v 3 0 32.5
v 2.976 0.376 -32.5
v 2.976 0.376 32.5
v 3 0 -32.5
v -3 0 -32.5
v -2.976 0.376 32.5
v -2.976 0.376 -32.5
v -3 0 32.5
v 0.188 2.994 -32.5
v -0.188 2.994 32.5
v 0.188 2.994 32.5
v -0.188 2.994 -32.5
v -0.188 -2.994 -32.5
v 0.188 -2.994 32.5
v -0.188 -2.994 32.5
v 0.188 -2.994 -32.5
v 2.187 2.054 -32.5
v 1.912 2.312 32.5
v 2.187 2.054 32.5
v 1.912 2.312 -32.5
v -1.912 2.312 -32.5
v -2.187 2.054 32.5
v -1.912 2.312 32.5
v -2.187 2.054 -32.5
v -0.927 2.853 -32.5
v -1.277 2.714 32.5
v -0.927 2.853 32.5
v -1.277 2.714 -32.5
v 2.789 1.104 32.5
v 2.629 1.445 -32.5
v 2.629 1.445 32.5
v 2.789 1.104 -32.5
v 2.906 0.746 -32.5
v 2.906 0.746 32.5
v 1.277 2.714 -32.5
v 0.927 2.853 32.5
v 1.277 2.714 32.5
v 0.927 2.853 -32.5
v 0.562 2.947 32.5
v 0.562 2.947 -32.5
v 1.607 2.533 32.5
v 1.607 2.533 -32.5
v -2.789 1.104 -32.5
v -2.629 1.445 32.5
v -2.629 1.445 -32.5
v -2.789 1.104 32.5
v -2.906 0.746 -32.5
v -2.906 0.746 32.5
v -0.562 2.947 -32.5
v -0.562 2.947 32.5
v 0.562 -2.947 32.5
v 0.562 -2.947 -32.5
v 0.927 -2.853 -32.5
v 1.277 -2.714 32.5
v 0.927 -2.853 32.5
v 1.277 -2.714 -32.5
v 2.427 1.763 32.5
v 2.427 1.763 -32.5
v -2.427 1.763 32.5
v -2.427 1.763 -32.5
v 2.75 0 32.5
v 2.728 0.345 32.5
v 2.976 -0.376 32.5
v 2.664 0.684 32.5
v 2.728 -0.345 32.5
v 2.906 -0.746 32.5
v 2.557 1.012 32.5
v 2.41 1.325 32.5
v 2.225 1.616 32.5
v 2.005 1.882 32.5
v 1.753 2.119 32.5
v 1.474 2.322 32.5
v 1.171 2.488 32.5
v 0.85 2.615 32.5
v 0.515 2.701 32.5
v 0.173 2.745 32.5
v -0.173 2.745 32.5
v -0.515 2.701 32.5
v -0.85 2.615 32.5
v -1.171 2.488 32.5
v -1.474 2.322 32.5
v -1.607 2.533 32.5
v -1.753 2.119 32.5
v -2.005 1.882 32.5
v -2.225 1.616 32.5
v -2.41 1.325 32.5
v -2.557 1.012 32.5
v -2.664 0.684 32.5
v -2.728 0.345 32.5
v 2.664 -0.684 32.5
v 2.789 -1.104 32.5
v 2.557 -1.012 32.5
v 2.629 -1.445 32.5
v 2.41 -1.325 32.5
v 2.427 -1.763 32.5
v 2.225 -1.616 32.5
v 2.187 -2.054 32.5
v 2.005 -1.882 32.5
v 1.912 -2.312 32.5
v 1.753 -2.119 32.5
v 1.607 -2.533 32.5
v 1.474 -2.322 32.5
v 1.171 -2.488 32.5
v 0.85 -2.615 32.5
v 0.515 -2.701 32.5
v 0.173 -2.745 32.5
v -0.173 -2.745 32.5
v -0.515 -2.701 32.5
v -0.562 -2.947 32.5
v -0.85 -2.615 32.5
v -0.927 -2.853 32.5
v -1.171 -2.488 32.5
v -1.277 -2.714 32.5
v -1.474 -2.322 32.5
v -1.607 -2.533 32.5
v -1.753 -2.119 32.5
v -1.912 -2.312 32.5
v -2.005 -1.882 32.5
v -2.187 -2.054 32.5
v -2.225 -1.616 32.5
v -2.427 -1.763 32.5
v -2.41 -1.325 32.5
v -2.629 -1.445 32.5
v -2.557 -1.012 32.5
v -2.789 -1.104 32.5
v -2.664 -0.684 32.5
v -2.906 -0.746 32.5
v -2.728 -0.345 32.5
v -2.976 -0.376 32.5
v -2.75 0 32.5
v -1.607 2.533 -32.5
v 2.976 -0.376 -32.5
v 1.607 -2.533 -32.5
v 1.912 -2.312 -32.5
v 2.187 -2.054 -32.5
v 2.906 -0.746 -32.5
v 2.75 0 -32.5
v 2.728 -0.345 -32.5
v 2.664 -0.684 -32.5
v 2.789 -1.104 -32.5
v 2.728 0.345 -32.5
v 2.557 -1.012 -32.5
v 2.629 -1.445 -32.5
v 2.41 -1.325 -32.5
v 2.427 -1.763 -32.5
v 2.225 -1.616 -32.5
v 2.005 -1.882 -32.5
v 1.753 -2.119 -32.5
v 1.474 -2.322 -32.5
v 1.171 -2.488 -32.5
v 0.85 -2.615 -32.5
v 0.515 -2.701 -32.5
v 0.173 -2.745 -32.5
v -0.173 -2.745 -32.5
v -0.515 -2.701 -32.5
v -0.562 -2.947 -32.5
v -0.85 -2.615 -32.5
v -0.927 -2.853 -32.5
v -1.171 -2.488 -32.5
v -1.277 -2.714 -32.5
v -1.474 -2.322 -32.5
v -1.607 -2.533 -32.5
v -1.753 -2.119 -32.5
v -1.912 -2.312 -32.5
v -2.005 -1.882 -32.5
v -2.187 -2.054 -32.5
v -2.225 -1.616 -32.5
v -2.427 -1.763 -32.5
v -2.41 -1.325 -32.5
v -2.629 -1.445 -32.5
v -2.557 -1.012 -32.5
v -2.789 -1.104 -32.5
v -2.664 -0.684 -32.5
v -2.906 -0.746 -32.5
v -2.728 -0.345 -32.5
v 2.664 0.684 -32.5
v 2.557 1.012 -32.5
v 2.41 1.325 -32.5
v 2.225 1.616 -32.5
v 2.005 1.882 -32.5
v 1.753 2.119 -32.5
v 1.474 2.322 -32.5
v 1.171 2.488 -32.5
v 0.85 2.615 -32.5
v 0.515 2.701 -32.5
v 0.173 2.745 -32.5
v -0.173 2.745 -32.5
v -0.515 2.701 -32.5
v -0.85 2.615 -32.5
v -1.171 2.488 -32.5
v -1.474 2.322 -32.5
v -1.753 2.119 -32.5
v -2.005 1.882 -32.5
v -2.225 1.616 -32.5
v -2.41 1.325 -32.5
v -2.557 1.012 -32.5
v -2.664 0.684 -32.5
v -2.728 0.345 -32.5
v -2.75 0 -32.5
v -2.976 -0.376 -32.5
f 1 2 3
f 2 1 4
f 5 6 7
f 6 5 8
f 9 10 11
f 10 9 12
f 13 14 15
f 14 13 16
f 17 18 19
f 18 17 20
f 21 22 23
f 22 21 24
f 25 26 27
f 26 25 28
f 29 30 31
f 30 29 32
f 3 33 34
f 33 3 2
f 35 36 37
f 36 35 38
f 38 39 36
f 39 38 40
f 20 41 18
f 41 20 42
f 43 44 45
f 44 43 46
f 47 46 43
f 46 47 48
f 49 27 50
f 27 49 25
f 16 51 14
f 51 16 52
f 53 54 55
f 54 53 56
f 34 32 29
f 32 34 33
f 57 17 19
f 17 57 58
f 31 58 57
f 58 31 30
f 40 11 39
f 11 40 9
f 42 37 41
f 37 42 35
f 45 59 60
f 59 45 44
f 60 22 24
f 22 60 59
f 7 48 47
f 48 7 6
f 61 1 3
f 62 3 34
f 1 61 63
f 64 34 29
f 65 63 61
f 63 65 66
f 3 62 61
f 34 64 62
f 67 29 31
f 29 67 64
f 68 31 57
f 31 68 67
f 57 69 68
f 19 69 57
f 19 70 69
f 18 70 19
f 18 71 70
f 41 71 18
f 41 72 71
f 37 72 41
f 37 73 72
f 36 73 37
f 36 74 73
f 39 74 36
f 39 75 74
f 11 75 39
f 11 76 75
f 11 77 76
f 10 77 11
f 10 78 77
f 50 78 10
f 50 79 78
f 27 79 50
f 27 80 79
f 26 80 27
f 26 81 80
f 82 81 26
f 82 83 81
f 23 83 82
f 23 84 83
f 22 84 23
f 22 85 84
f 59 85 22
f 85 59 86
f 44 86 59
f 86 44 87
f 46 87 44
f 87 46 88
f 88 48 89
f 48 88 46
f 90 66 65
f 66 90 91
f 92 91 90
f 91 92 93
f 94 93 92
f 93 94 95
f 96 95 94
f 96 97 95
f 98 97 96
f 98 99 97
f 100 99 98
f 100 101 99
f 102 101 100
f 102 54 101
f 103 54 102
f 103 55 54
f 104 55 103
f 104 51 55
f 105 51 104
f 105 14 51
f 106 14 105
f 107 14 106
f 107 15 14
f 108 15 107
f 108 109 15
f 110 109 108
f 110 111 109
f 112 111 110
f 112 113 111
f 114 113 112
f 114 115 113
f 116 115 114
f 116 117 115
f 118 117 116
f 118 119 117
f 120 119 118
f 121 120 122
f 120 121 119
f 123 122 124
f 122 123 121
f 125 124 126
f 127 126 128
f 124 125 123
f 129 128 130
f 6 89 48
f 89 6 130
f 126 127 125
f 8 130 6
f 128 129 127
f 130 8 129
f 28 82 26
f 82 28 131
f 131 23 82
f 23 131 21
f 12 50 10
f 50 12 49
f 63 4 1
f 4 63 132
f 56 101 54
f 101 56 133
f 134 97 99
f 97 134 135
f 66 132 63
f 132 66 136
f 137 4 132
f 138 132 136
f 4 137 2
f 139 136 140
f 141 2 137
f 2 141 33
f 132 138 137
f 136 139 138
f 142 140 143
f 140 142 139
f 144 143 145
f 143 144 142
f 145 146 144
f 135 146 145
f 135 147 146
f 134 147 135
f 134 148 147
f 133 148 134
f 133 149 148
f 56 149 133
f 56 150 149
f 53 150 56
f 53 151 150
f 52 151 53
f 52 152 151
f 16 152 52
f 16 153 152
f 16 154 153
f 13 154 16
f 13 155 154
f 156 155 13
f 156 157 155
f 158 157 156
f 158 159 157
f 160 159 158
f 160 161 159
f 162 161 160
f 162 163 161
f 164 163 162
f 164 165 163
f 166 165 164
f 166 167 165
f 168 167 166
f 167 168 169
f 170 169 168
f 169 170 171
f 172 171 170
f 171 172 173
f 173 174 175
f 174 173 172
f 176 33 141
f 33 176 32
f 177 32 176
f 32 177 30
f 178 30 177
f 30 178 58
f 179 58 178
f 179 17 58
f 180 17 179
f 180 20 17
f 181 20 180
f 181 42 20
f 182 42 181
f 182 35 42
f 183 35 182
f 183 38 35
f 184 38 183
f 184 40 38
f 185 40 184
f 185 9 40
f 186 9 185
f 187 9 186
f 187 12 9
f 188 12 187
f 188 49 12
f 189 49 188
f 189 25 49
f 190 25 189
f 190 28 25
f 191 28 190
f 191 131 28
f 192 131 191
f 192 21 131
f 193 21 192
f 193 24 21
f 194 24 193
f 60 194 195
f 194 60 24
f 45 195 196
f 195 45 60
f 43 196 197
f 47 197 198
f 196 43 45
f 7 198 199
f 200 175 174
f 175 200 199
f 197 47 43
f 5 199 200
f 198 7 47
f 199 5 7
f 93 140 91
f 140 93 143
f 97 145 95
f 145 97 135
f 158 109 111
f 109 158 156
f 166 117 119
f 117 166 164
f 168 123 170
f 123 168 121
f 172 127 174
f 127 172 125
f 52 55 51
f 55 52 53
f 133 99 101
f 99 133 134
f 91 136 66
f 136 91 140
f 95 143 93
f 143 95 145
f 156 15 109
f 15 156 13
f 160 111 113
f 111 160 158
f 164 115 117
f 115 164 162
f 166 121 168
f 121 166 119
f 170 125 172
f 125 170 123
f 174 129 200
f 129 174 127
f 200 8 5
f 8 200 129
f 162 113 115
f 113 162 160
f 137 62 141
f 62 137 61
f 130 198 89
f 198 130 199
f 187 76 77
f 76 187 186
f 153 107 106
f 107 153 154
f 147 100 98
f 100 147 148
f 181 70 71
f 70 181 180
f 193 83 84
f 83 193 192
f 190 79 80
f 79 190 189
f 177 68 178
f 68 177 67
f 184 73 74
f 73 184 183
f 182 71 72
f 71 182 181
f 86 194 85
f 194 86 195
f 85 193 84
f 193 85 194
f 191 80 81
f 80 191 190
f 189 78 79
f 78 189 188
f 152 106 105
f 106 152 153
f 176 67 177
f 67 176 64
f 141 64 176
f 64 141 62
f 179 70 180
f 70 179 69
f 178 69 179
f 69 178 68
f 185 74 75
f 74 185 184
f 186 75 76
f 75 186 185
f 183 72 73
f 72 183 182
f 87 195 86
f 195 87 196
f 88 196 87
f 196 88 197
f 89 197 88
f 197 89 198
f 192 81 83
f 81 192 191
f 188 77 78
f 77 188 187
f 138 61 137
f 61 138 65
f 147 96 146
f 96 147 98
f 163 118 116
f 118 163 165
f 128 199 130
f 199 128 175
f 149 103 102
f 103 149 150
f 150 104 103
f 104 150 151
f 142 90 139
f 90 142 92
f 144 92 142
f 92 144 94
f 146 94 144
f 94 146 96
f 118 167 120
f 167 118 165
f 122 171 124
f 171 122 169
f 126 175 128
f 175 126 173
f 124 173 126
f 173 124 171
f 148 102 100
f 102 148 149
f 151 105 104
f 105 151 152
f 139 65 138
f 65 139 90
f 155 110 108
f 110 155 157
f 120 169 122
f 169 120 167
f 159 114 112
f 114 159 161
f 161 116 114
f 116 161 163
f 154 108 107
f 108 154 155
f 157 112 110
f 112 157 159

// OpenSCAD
$fn = 50;


difference() {
	union() {
		translate(v = [0, 0, -32.5000000000]) {
			cylinder(h = 65, r = 3.0000000000);
		}
	}
	union() {
		translate(v = [0, 0, -100.0000000000]) {
			cylinder(h = 200, r = 2.7500000000);
		}
	}
}
